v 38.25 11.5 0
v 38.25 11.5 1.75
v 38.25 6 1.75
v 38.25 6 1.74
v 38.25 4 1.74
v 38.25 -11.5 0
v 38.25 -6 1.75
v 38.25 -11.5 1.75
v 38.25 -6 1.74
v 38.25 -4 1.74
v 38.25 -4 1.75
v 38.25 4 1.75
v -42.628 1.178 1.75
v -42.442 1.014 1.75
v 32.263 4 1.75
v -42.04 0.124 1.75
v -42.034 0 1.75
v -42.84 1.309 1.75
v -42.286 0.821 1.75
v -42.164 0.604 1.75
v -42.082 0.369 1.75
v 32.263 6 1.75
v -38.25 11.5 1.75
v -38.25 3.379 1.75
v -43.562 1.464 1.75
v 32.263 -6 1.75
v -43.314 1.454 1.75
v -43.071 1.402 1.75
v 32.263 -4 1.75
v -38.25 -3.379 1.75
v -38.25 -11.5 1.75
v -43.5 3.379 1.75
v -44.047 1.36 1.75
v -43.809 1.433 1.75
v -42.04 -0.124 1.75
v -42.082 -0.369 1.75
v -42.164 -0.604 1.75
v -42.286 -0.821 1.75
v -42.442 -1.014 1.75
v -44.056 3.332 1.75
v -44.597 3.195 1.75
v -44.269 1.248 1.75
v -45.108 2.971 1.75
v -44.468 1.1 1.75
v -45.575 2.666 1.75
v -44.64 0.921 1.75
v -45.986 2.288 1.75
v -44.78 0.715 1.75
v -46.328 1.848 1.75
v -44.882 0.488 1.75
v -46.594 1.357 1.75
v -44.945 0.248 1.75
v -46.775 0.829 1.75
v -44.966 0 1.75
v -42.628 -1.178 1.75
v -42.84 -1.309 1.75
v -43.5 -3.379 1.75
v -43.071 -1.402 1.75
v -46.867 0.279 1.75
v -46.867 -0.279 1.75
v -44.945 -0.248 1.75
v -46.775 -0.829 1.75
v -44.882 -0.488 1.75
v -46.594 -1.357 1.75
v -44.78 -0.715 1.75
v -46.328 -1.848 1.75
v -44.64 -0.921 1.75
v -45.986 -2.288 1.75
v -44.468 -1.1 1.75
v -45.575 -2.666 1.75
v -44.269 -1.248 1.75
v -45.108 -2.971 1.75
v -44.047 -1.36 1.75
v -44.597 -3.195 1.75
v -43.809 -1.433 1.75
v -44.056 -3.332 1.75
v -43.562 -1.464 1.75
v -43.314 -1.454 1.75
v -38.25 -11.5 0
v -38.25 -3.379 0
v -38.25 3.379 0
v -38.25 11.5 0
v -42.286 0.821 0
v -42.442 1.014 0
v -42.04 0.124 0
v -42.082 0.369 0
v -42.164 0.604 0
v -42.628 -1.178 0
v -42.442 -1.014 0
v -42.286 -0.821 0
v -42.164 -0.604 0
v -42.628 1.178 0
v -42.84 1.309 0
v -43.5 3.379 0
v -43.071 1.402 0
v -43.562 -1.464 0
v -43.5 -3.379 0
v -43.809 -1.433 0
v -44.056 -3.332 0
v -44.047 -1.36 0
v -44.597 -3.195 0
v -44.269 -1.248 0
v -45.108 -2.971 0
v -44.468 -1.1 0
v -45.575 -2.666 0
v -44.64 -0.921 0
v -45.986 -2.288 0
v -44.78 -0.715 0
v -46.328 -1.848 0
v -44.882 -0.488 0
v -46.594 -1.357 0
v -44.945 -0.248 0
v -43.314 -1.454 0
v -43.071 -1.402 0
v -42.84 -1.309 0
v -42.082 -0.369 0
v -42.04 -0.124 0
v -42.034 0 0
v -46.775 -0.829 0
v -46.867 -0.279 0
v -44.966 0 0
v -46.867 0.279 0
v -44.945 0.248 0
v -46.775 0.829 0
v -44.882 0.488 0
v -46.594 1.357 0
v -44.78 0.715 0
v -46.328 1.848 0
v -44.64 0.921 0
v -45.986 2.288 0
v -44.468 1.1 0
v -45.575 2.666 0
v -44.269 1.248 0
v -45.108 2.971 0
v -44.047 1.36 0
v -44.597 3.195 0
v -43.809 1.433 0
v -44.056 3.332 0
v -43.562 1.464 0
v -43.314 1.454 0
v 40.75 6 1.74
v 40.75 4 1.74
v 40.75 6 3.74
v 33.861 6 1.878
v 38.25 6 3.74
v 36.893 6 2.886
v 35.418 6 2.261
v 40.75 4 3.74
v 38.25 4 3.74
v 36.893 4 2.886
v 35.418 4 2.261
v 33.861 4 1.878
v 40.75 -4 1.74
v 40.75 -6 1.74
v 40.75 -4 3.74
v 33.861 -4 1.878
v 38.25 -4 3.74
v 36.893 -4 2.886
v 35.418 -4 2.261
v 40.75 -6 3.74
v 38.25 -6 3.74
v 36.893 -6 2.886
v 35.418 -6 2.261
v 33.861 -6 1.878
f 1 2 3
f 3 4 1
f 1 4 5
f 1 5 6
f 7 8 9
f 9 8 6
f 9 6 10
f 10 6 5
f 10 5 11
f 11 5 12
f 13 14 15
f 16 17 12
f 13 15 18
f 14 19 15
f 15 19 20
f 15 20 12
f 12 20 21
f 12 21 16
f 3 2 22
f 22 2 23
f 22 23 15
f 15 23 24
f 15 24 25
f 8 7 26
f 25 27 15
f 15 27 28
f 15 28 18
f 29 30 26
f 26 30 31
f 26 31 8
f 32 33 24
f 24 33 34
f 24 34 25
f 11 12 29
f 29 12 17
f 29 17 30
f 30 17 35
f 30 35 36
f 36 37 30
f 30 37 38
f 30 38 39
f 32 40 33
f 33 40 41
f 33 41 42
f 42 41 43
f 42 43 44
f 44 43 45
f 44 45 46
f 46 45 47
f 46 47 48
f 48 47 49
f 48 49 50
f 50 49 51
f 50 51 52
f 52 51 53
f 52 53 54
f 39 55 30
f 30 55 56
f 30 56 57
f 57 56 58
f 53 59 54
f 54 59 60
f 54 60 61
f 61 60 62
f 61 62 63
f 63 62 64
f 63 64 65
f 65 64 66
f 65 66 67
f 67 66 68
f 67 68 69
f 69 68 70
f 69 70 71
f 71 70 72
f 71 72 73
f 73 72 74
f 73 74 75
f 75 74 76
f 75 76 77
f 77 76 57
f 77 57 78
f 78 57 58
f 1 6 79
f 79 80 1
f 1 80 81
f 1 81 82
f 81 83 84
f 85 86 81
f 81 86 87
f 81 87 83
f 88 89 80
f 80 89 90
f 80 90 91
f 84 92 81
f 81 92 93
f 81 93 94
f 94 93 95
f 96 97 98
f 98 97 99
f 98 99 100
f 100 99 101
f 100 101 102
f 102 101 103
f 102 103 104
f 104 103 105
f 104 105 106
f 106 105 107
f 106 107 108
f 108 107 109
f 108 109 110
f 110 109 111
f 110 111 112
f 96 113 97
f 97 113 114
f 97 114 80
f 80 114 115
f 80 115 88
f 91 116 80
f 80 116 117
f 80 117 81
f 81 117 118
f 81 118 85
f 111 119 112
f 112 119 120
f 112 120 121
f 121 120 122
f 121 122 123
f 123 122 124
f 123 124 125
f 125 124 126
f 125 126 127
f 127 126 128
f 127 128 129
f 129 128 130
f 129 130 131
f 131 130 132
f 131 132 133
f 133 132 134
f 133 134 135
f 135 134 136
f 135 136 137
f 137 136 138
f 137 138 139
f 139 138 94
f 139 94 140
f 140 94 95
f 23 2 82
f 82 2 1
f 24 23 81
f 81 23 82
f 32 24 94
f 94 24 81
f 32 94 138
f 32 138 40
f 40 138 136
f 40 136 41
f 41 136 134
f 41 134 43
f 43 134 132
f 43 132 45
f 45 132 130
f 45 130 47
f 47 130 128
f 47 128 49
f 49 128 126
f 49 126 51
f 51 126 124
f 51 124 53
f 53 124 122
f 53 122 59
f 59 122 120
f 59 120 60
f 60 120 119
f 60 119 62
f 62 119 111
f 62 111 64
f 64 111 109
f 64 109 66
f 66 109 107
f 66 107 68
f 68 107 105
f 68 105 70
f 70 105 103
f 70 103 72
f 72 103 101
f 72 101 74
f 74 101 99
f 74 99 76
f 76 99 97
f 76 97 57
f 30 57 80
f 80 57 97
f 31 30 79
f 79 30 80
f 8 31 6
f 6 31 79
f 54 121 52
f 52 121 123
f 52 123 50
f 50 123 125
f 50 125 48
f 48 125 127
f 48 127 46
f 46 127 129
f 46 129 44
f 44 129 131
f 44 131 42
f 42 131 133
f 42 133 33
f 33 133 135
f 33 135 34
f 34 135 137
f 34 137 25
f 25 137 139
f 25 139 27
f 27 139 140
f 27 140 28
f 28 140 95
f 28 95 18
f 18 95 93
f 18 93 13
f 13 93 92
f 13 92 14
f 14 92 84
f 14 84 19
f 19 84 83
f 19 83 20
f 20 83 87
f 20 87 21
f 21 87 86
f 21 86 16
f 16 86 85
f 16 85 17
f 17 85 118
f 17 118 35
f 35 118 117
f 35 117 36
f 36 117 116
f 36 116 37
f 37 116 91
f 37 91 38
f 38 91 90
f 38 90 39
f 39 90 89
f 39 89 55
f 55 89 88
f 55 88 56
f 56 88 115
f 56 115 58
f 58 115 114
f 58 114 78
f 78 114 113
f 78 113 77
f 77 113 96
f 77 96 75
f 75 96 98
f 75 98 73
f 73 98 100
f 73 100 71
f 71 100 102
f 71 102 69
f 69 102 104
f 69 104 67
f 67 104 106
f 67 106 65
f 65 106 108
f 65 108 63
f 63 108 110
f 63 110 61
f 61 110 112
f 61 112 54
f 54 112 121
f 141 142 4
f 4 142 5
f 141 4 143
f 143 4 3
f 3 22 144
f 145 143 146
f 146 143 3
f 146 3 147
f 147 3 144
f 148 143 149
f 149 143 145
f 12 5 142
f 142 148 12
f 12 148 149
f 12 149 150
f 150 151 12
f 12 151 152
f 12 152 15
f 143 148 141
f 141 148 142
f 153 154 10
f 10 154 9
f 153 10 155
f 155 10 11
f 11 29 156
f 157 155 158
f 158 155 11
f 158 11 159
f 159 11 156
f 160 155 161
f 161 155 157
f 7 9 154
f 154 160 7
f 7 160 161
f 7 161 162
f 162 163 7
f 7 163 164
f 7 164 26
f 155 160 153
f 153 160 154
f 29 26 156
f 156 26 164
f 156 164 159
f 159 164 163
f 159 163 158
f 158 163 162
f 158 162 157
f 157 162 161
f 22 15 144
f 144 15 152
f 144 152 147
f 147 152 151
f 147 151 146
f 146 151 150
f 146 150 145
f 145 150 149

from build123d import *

# Parameters (mm, degrees)
ESBO_O1_R                = 1.465754988
RESSALTO_EXTRUS_O1_DEPTH = 1.75
ESBO_O2_W                = 2
ESBO_O2_H                = 2
RESSALTO_EXTRUS_O2_DEPTH = 2.5
FILETE1_R                = 10


with BuildPart() as part:
    # Esboço1 → Ressalto-extrusão1 (new body)
    with BuildSketch(Plane(origin=(0, 0, 0), x_dir=(0, 1, 0), z_dir=(0, 0, 1))):
        with BuildLine():
            Line((3.378557636, 38.25), (11.5, 38.25))
            Line((11.5, 38.25), (11.5, -38.25))
            Line((11.5, -38.25), (-11.5, -38.25))
            Line((-11.5, -38.25), (-11.5, 38.25))
            Line((-11.5, 38.25), (-3.378557636, 38.25))
            Line((-3.378557636, 38.25), (-3.378557636, 43.5))
            ThreePointArc((-3.378557636, 43.5), (0, 46.878557636), (3.378557636, 43.5))
            Line((3.378557636, 43.5), (3.378557636, 38.25))
        make_face()
        with Locations(Location((0, 43.5, 0), (0, 0, 270))):
            Circle(ESBO_O1_R, mode=Mode.SUBTRACT)
    extrude(amount=RESSALTO_EXTRUS_O1_DEPTH)

    # Esboço2 → Ressalto-extrusão2 (add)
    with BuildSketch(Plane(origin=(38.25, 0, 0), x_dir=(0, 0, -1), z_dir=(1, 0, 0))):
        with Locations((-2.74, -5)):
            Rectangle(ESBO_O2_W, ESBO_O2_H)
        with Locations((-2.74, 5)):
            Rectangle(ESBO_O2_W, ESBO_O2_H)
    extrude(amount=RESSALTO_EXTRUS_O2_DEPTH)

    # Filete1
    # the kernel refuses this fillet: 10 mm, written as the material it adds along each edge
    with BuildSketch(Plane(origin=(38.25, 10.966608667, 1.75), x_dir=(-1, 0, 0), z_dir=(0, -1, 0))) as filete1_piece_1_section:
        with BuildLine():
            CenterArc((5.986643467, -10), FILETE1_R, 90, 36.774298296)
            Line((0, -1.99), (0, 0))
            Line((0, 0), (5.986643467, 0))
        make_face()
    filete1_piece_1 = extrude(amount=31.933217335, mode=Mode.PRIVATE)
    filete1_piece_1 = split(filete1_piece_1, bisect_by=Plane(origin=(35.424027316, 4, 2.241553218), z_dir=(0, 1, 0)), keep=Keep.TOP, mode=Mode.PRIVATE)
    filete1_piece_1 = split(filete1_piece_1, bisect_by=Plane(origin=(35.424027316, 6, 2.241553218), z_dir=(0, -1, 0)), keep=Keep.TOP, mode=Mode.PRIVATE)
    add(filete1_piece_1)
    with BuildSketch(Plane(origin=(38.25, -4, 1.75), x_dir=(-1, 0, 0), z_dir=(0, -1, 0)), Plane(origin=(38.25, 6, 1.75), x_dir=(-1, 0, 0), z_dir=(0, -1, 0))) as filete1_piece_2:
        with BuildLine():
            CenterArc((5.986643467, -10), FILETE1_R, 90, 36.774298296)
            Line((0, -1.99), (0, 0))
            Line((0, 0), (5.986643467, 0))
        make_face()
    extrude(amount=2)
    with BuildSketch(Plane(origin=(38.25, 20.966608667, 1.75), x_dir=(-1, 0, 0), z_dir=(0, -1, 0))) as filete1_piece_3_section:
        with BuildLine():
            CenterArc((5.986643467, -10), FILETE1_R, 90, 36.774298296)
            Line((0, -1.99), (0, 0))
            Line((0, 0), (5.986643467, 0))
        make_face()
    filete1_piece_3 = extrude(amount=31.933217335, mode=Mode.PRIVATE)
    filete1_piece_3 = split(filete1_piece_3, bisect_by=Plane(origin=(35.424027316, -6, 2.241553218), z_dir=(0, 1, 0)), keep=Keep.TOP, mode=Mode.PRIVATE)
    filete1_piece_3 = split(filete1_piece_3, bisect_by=Plane(origin=(35.424027316, -4, 2.241553218), z_dir=(0, -1, 0)), keep=Keep.TOP, mode=Mode.PRIVATE)
    add(filete1_piece_3)


solid = part.part
